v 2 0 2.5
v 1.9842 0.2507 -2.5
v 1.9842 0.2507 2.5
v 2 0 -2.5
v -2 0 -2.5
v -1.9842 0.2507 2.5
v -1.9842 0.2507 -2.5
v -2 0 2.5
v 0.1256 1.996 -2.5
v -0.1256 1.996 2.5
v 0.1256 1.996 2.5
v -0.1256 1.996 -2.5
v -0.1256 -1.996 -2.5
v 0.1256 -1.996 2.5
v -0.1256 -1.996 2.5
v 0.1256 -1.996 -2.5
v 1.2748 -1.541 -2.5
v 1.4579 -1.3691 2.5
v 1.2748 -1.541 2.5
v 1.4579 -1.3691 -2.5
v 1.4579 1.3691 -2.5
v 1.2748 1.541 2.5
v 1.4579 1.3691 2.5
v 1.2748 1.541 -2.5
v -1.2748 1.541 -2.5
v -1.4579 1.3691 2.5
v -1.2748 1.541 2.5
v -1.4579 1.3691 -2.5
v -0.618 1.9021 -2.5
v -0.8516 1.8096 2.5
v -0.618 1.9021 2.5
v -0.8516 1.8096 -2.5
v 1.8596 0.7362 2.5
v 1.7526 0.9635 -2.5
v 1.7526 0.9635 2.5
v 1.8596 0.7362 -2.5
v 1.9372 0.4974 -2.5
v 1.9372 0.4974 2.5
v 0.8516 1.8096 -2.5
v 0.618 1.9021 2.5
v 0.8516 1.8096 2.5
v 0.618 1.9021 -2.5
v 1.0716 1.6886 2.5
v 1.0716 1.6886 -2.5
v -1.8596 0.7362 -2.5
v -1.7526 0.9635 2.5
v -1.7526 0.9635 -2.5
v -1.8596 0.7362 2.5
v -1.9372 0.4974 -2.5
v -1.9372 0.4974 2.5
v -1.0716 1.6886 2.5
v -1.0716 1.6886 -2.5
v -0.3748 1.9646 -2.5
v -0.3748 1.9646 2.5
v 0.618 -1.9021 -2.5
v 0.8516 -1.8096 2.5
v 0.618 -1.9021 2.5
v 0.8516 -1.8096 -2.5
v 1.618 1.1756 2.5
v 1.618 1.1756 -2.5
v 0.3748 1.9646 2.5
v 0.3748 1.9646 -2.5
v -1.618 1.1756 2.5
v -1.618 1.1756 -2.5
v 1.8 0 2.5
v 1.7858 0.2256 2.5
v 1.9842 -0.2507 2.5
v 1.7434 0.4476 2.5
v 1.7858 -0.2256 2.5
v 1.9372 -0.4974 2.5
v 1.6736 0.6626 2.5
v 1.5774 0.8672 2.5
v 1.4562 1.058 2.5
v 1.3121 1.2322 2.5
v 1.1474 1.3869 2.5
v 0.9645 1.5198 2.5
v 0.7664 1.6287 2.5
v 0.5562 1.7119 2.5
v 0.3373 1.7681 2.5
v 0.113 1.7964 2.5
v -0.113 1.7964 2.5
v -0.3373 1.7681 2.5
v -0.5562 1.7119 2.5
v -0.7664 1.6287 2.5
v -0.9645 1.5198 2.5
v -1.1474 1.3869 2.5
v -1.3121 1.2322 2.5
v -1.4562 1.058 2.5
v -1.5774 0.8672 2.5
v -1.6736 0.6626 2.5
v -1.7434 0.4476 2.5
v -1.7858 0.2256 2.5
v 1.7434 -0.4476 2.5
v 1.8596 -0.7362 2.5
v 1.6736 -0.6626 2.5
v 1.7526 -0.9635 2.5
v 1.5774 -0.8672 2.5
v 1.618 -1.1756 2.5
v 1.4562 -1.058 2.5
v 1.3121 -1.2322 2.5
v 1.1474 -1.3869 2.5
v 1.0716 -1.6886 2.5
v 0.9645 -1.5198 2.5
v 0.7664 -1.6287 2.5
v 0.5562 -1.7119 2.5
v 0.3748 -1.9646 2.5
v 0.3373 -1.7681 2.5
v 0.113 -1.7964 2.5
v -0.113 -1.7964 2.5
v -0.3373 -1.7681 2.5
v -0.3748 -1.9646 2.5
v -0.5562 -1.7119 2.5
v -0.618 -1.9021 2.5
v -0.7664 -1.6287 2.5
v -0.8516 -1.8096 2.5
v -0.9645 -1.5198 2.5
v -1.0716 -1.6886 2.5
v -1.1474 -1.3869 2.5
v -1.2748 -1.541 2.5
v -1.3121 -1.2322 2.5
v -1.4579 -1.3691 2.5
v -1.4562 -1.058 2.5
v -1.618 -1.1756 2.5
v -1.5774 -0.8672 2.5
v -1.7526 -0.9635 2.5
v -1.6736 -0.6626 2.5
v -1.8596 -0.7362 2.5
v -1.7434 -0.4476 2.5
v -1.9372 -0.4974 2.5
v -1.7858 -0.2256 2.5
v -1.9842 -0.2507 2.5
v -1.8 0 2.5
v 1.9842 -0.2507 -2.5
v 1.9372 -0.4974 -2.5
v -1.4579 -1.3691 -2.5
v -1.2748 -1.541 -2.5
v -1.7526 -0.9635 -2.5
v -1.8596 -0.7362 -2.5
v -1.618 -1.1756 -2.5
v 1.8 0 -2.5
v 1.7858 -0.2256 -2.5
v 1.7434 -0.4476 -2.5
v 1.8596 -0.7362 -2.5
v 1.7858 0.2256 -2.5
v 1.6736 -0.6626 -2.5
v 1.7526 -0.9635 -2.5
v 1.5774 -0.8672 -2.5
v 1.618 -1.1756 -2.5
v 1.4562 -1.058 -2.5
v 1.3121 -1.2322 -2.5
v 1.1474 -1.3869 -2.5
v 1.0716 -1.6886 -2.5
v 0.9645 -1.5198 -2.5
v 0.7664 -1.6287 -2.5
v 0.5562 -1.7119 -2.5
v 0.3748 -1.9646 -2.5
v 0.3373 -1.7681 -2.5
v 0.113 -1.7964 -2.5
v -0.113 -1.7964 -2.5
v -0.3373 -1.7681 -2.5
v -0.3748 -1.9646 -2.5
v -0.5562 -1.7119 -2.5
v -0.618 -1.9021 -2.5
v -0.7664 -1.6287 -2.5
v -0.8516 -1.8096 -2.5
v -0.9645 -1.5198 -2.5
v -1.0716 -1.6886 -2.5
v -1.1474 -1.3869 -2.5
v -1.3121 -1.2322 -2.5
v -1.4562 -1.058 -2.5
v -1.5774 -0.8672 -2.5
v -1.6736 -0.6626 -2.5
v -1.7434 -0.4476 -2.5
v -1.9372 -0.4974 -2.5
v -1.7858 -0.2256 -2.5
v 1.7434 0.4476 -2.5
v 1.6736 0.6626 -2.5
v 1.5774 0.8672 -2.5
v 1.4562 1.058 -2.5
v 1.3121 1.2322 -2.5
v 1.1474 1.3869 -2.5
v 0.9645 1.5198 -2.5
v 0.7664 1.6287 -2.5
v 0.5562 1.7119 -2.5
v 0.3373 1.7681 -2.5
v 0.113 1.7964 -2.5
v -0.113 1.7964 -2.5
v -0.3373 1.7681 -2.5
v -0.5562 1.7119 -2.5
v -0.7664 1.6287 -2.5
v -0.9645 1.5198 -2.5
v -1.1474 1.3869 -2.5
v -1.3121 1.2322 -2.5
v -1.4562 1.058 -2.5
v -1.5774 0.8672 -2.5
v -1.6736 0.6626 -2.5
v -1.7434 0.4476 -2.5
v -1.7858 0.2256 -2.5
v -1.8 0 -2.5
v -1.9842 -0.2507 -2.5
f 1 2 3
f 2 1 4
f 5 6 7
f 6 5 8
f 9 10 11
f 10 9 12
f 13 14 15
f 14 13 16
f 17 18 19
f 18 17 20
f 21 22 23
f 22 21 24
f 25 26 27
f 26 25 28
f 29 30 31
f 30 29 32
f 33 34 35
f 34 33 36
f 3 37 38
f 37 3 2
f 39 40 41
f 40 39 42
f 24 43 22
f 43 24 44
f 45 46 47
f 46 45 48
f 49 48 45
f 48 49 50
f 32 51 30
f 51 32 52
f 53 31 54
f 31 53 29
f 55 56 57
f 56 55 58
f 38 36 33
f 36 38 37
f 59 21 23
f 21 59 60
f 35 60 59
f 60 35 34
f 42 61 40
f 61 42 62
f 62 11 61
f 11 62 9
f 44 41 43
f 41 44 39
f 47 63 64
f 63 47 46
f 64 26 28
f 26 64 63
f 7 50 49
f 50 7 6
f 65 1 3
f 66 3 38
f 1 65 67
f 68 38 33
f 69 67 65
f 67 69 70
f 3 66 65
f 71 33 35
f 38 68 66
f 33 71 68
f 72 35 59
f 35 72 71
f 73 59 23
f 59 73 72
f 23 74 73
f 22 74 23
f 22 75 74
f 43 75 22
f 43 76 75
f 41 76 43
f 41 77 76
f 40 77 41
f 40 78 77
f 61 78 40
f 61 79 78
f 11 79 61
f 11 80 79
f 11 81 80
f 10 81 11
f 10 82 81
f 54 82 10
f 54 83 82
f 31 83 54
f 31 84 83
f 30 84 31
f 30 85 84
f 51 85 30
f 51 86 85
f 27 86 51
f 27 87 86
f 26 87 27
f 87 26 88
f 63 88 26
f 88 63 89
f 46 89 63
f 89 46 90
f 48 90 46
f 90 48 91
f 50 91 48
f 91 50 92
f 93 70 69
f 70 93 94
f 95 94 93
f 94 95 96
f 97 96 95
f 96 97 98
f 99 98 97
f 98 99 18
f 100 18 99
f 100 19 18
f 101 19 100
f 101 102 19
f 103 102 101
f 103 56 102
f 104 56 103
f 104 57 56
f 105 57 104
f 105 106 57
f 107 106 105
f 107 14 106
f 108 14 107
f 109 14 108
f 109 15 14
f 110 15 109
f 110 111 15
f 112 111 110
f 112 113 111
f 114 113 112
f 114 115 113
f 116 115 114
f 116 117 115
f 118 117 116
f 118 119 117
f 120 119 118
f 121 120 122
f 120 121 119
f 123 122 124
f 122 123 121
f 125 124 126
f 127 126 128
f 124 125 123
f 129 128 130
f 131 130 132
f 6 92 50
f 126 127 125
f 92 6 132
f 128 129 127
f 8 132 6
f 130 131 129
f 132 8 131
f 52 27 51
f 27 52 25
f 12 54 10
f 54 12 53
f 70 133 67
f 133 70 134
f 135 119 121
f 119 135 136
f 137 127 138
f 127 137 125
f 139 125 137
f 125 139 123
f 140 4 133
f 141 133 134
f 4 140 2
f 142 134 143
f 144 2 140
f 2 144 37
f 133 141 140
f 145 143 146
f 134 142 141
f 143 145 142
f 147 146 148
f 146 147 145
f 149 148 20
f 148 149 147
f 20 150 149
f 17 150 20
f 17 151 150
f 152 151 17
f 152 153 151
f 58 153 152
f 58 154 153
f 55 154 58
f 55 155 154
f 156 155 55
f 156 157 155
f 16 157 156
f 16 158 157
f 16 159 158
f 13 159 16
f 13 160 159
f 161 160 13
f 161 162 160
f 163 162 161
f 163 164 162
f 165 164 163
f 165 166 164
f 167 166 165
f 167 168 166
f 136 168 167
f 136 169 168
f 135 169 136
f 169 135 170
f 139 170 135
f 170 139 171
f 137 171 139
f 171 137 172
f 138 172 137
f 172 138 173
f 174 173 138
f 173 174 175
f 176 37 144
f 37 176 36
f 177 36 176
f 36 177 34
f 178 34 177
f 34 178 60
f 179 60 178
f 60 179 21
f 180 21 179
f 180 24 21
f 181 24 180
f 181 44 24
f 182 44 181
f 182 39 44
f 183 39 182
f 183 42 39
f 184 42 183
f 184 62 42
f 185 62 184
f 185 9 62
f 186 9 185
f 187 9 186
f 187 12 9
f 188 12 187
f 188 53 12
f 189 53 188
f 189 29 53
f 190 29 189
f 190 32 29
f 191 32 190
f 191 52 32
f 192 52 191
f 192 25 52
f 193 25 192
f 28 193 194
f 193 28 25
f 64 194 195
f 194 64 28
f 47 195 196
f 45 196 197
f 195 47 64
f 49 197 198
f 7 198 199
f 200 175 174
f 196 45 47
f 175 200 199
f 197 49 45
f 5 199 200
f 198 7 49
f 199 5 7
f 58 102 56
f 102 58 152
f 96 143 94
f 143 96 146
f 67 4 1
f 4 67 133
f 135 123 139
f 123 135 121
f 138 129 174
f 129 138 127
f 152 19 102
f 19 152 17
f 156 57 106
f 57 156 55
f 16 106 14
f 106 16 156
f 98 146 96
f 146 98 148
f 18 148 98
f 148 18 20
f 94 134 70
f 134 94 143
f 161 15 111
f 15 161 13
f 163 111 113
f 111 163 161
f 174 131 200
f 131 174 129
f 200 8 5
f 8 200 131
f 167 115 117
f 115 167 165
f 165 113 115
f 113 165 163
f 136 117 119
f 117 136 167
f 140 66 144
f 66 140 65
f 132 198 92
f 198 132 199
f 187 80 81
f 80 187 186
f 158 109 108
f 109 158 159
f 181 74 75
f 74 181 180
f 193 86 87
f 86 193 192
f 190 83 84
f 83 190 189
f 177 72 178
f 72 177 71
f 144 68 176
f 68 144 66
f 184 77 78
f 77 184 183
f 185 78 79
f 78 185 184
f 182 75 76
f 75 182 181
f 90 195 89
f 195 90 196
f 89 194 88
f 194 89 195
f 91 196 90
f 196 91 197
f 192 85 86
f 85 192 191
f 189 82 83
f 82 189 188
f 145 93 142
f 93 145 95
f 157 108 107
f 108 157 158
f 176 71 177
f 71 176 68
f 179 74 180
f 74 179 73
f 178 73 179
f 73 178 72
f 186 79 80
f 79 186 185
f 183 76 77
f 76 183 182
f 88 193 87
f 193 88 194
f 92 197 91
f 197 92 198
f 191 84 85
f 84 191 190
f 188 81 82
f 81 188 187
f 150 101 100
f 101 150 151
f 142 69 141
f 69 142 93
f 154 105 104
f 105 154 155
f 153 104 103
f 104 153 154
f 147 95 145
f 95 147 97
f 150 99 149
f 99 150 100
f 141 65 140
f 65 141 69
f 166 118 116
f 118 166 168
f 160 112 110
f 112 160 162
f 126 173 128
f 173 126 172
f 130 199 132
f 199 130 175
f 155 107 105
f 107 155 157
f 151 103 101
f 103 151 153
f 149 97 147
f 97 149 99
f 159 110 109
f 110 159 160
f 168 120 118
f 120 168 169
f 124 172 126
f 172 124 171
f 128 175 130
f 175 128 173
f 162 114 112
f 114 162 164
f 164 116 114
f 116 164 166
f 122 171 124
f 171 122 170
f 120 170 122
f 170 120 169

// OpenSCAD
$fn = 50;


difference() {
	union() {
		translate(v = [0, 0, -2.5000000000]) {
			cylinder(h = 5, r = 2.0000000000);
		}
	}
	union() {
		translate(v = [0, 0, -100.0000000000]) {
			cylinder(h = 200, r = 1.8000000000);
		}
	}
}
